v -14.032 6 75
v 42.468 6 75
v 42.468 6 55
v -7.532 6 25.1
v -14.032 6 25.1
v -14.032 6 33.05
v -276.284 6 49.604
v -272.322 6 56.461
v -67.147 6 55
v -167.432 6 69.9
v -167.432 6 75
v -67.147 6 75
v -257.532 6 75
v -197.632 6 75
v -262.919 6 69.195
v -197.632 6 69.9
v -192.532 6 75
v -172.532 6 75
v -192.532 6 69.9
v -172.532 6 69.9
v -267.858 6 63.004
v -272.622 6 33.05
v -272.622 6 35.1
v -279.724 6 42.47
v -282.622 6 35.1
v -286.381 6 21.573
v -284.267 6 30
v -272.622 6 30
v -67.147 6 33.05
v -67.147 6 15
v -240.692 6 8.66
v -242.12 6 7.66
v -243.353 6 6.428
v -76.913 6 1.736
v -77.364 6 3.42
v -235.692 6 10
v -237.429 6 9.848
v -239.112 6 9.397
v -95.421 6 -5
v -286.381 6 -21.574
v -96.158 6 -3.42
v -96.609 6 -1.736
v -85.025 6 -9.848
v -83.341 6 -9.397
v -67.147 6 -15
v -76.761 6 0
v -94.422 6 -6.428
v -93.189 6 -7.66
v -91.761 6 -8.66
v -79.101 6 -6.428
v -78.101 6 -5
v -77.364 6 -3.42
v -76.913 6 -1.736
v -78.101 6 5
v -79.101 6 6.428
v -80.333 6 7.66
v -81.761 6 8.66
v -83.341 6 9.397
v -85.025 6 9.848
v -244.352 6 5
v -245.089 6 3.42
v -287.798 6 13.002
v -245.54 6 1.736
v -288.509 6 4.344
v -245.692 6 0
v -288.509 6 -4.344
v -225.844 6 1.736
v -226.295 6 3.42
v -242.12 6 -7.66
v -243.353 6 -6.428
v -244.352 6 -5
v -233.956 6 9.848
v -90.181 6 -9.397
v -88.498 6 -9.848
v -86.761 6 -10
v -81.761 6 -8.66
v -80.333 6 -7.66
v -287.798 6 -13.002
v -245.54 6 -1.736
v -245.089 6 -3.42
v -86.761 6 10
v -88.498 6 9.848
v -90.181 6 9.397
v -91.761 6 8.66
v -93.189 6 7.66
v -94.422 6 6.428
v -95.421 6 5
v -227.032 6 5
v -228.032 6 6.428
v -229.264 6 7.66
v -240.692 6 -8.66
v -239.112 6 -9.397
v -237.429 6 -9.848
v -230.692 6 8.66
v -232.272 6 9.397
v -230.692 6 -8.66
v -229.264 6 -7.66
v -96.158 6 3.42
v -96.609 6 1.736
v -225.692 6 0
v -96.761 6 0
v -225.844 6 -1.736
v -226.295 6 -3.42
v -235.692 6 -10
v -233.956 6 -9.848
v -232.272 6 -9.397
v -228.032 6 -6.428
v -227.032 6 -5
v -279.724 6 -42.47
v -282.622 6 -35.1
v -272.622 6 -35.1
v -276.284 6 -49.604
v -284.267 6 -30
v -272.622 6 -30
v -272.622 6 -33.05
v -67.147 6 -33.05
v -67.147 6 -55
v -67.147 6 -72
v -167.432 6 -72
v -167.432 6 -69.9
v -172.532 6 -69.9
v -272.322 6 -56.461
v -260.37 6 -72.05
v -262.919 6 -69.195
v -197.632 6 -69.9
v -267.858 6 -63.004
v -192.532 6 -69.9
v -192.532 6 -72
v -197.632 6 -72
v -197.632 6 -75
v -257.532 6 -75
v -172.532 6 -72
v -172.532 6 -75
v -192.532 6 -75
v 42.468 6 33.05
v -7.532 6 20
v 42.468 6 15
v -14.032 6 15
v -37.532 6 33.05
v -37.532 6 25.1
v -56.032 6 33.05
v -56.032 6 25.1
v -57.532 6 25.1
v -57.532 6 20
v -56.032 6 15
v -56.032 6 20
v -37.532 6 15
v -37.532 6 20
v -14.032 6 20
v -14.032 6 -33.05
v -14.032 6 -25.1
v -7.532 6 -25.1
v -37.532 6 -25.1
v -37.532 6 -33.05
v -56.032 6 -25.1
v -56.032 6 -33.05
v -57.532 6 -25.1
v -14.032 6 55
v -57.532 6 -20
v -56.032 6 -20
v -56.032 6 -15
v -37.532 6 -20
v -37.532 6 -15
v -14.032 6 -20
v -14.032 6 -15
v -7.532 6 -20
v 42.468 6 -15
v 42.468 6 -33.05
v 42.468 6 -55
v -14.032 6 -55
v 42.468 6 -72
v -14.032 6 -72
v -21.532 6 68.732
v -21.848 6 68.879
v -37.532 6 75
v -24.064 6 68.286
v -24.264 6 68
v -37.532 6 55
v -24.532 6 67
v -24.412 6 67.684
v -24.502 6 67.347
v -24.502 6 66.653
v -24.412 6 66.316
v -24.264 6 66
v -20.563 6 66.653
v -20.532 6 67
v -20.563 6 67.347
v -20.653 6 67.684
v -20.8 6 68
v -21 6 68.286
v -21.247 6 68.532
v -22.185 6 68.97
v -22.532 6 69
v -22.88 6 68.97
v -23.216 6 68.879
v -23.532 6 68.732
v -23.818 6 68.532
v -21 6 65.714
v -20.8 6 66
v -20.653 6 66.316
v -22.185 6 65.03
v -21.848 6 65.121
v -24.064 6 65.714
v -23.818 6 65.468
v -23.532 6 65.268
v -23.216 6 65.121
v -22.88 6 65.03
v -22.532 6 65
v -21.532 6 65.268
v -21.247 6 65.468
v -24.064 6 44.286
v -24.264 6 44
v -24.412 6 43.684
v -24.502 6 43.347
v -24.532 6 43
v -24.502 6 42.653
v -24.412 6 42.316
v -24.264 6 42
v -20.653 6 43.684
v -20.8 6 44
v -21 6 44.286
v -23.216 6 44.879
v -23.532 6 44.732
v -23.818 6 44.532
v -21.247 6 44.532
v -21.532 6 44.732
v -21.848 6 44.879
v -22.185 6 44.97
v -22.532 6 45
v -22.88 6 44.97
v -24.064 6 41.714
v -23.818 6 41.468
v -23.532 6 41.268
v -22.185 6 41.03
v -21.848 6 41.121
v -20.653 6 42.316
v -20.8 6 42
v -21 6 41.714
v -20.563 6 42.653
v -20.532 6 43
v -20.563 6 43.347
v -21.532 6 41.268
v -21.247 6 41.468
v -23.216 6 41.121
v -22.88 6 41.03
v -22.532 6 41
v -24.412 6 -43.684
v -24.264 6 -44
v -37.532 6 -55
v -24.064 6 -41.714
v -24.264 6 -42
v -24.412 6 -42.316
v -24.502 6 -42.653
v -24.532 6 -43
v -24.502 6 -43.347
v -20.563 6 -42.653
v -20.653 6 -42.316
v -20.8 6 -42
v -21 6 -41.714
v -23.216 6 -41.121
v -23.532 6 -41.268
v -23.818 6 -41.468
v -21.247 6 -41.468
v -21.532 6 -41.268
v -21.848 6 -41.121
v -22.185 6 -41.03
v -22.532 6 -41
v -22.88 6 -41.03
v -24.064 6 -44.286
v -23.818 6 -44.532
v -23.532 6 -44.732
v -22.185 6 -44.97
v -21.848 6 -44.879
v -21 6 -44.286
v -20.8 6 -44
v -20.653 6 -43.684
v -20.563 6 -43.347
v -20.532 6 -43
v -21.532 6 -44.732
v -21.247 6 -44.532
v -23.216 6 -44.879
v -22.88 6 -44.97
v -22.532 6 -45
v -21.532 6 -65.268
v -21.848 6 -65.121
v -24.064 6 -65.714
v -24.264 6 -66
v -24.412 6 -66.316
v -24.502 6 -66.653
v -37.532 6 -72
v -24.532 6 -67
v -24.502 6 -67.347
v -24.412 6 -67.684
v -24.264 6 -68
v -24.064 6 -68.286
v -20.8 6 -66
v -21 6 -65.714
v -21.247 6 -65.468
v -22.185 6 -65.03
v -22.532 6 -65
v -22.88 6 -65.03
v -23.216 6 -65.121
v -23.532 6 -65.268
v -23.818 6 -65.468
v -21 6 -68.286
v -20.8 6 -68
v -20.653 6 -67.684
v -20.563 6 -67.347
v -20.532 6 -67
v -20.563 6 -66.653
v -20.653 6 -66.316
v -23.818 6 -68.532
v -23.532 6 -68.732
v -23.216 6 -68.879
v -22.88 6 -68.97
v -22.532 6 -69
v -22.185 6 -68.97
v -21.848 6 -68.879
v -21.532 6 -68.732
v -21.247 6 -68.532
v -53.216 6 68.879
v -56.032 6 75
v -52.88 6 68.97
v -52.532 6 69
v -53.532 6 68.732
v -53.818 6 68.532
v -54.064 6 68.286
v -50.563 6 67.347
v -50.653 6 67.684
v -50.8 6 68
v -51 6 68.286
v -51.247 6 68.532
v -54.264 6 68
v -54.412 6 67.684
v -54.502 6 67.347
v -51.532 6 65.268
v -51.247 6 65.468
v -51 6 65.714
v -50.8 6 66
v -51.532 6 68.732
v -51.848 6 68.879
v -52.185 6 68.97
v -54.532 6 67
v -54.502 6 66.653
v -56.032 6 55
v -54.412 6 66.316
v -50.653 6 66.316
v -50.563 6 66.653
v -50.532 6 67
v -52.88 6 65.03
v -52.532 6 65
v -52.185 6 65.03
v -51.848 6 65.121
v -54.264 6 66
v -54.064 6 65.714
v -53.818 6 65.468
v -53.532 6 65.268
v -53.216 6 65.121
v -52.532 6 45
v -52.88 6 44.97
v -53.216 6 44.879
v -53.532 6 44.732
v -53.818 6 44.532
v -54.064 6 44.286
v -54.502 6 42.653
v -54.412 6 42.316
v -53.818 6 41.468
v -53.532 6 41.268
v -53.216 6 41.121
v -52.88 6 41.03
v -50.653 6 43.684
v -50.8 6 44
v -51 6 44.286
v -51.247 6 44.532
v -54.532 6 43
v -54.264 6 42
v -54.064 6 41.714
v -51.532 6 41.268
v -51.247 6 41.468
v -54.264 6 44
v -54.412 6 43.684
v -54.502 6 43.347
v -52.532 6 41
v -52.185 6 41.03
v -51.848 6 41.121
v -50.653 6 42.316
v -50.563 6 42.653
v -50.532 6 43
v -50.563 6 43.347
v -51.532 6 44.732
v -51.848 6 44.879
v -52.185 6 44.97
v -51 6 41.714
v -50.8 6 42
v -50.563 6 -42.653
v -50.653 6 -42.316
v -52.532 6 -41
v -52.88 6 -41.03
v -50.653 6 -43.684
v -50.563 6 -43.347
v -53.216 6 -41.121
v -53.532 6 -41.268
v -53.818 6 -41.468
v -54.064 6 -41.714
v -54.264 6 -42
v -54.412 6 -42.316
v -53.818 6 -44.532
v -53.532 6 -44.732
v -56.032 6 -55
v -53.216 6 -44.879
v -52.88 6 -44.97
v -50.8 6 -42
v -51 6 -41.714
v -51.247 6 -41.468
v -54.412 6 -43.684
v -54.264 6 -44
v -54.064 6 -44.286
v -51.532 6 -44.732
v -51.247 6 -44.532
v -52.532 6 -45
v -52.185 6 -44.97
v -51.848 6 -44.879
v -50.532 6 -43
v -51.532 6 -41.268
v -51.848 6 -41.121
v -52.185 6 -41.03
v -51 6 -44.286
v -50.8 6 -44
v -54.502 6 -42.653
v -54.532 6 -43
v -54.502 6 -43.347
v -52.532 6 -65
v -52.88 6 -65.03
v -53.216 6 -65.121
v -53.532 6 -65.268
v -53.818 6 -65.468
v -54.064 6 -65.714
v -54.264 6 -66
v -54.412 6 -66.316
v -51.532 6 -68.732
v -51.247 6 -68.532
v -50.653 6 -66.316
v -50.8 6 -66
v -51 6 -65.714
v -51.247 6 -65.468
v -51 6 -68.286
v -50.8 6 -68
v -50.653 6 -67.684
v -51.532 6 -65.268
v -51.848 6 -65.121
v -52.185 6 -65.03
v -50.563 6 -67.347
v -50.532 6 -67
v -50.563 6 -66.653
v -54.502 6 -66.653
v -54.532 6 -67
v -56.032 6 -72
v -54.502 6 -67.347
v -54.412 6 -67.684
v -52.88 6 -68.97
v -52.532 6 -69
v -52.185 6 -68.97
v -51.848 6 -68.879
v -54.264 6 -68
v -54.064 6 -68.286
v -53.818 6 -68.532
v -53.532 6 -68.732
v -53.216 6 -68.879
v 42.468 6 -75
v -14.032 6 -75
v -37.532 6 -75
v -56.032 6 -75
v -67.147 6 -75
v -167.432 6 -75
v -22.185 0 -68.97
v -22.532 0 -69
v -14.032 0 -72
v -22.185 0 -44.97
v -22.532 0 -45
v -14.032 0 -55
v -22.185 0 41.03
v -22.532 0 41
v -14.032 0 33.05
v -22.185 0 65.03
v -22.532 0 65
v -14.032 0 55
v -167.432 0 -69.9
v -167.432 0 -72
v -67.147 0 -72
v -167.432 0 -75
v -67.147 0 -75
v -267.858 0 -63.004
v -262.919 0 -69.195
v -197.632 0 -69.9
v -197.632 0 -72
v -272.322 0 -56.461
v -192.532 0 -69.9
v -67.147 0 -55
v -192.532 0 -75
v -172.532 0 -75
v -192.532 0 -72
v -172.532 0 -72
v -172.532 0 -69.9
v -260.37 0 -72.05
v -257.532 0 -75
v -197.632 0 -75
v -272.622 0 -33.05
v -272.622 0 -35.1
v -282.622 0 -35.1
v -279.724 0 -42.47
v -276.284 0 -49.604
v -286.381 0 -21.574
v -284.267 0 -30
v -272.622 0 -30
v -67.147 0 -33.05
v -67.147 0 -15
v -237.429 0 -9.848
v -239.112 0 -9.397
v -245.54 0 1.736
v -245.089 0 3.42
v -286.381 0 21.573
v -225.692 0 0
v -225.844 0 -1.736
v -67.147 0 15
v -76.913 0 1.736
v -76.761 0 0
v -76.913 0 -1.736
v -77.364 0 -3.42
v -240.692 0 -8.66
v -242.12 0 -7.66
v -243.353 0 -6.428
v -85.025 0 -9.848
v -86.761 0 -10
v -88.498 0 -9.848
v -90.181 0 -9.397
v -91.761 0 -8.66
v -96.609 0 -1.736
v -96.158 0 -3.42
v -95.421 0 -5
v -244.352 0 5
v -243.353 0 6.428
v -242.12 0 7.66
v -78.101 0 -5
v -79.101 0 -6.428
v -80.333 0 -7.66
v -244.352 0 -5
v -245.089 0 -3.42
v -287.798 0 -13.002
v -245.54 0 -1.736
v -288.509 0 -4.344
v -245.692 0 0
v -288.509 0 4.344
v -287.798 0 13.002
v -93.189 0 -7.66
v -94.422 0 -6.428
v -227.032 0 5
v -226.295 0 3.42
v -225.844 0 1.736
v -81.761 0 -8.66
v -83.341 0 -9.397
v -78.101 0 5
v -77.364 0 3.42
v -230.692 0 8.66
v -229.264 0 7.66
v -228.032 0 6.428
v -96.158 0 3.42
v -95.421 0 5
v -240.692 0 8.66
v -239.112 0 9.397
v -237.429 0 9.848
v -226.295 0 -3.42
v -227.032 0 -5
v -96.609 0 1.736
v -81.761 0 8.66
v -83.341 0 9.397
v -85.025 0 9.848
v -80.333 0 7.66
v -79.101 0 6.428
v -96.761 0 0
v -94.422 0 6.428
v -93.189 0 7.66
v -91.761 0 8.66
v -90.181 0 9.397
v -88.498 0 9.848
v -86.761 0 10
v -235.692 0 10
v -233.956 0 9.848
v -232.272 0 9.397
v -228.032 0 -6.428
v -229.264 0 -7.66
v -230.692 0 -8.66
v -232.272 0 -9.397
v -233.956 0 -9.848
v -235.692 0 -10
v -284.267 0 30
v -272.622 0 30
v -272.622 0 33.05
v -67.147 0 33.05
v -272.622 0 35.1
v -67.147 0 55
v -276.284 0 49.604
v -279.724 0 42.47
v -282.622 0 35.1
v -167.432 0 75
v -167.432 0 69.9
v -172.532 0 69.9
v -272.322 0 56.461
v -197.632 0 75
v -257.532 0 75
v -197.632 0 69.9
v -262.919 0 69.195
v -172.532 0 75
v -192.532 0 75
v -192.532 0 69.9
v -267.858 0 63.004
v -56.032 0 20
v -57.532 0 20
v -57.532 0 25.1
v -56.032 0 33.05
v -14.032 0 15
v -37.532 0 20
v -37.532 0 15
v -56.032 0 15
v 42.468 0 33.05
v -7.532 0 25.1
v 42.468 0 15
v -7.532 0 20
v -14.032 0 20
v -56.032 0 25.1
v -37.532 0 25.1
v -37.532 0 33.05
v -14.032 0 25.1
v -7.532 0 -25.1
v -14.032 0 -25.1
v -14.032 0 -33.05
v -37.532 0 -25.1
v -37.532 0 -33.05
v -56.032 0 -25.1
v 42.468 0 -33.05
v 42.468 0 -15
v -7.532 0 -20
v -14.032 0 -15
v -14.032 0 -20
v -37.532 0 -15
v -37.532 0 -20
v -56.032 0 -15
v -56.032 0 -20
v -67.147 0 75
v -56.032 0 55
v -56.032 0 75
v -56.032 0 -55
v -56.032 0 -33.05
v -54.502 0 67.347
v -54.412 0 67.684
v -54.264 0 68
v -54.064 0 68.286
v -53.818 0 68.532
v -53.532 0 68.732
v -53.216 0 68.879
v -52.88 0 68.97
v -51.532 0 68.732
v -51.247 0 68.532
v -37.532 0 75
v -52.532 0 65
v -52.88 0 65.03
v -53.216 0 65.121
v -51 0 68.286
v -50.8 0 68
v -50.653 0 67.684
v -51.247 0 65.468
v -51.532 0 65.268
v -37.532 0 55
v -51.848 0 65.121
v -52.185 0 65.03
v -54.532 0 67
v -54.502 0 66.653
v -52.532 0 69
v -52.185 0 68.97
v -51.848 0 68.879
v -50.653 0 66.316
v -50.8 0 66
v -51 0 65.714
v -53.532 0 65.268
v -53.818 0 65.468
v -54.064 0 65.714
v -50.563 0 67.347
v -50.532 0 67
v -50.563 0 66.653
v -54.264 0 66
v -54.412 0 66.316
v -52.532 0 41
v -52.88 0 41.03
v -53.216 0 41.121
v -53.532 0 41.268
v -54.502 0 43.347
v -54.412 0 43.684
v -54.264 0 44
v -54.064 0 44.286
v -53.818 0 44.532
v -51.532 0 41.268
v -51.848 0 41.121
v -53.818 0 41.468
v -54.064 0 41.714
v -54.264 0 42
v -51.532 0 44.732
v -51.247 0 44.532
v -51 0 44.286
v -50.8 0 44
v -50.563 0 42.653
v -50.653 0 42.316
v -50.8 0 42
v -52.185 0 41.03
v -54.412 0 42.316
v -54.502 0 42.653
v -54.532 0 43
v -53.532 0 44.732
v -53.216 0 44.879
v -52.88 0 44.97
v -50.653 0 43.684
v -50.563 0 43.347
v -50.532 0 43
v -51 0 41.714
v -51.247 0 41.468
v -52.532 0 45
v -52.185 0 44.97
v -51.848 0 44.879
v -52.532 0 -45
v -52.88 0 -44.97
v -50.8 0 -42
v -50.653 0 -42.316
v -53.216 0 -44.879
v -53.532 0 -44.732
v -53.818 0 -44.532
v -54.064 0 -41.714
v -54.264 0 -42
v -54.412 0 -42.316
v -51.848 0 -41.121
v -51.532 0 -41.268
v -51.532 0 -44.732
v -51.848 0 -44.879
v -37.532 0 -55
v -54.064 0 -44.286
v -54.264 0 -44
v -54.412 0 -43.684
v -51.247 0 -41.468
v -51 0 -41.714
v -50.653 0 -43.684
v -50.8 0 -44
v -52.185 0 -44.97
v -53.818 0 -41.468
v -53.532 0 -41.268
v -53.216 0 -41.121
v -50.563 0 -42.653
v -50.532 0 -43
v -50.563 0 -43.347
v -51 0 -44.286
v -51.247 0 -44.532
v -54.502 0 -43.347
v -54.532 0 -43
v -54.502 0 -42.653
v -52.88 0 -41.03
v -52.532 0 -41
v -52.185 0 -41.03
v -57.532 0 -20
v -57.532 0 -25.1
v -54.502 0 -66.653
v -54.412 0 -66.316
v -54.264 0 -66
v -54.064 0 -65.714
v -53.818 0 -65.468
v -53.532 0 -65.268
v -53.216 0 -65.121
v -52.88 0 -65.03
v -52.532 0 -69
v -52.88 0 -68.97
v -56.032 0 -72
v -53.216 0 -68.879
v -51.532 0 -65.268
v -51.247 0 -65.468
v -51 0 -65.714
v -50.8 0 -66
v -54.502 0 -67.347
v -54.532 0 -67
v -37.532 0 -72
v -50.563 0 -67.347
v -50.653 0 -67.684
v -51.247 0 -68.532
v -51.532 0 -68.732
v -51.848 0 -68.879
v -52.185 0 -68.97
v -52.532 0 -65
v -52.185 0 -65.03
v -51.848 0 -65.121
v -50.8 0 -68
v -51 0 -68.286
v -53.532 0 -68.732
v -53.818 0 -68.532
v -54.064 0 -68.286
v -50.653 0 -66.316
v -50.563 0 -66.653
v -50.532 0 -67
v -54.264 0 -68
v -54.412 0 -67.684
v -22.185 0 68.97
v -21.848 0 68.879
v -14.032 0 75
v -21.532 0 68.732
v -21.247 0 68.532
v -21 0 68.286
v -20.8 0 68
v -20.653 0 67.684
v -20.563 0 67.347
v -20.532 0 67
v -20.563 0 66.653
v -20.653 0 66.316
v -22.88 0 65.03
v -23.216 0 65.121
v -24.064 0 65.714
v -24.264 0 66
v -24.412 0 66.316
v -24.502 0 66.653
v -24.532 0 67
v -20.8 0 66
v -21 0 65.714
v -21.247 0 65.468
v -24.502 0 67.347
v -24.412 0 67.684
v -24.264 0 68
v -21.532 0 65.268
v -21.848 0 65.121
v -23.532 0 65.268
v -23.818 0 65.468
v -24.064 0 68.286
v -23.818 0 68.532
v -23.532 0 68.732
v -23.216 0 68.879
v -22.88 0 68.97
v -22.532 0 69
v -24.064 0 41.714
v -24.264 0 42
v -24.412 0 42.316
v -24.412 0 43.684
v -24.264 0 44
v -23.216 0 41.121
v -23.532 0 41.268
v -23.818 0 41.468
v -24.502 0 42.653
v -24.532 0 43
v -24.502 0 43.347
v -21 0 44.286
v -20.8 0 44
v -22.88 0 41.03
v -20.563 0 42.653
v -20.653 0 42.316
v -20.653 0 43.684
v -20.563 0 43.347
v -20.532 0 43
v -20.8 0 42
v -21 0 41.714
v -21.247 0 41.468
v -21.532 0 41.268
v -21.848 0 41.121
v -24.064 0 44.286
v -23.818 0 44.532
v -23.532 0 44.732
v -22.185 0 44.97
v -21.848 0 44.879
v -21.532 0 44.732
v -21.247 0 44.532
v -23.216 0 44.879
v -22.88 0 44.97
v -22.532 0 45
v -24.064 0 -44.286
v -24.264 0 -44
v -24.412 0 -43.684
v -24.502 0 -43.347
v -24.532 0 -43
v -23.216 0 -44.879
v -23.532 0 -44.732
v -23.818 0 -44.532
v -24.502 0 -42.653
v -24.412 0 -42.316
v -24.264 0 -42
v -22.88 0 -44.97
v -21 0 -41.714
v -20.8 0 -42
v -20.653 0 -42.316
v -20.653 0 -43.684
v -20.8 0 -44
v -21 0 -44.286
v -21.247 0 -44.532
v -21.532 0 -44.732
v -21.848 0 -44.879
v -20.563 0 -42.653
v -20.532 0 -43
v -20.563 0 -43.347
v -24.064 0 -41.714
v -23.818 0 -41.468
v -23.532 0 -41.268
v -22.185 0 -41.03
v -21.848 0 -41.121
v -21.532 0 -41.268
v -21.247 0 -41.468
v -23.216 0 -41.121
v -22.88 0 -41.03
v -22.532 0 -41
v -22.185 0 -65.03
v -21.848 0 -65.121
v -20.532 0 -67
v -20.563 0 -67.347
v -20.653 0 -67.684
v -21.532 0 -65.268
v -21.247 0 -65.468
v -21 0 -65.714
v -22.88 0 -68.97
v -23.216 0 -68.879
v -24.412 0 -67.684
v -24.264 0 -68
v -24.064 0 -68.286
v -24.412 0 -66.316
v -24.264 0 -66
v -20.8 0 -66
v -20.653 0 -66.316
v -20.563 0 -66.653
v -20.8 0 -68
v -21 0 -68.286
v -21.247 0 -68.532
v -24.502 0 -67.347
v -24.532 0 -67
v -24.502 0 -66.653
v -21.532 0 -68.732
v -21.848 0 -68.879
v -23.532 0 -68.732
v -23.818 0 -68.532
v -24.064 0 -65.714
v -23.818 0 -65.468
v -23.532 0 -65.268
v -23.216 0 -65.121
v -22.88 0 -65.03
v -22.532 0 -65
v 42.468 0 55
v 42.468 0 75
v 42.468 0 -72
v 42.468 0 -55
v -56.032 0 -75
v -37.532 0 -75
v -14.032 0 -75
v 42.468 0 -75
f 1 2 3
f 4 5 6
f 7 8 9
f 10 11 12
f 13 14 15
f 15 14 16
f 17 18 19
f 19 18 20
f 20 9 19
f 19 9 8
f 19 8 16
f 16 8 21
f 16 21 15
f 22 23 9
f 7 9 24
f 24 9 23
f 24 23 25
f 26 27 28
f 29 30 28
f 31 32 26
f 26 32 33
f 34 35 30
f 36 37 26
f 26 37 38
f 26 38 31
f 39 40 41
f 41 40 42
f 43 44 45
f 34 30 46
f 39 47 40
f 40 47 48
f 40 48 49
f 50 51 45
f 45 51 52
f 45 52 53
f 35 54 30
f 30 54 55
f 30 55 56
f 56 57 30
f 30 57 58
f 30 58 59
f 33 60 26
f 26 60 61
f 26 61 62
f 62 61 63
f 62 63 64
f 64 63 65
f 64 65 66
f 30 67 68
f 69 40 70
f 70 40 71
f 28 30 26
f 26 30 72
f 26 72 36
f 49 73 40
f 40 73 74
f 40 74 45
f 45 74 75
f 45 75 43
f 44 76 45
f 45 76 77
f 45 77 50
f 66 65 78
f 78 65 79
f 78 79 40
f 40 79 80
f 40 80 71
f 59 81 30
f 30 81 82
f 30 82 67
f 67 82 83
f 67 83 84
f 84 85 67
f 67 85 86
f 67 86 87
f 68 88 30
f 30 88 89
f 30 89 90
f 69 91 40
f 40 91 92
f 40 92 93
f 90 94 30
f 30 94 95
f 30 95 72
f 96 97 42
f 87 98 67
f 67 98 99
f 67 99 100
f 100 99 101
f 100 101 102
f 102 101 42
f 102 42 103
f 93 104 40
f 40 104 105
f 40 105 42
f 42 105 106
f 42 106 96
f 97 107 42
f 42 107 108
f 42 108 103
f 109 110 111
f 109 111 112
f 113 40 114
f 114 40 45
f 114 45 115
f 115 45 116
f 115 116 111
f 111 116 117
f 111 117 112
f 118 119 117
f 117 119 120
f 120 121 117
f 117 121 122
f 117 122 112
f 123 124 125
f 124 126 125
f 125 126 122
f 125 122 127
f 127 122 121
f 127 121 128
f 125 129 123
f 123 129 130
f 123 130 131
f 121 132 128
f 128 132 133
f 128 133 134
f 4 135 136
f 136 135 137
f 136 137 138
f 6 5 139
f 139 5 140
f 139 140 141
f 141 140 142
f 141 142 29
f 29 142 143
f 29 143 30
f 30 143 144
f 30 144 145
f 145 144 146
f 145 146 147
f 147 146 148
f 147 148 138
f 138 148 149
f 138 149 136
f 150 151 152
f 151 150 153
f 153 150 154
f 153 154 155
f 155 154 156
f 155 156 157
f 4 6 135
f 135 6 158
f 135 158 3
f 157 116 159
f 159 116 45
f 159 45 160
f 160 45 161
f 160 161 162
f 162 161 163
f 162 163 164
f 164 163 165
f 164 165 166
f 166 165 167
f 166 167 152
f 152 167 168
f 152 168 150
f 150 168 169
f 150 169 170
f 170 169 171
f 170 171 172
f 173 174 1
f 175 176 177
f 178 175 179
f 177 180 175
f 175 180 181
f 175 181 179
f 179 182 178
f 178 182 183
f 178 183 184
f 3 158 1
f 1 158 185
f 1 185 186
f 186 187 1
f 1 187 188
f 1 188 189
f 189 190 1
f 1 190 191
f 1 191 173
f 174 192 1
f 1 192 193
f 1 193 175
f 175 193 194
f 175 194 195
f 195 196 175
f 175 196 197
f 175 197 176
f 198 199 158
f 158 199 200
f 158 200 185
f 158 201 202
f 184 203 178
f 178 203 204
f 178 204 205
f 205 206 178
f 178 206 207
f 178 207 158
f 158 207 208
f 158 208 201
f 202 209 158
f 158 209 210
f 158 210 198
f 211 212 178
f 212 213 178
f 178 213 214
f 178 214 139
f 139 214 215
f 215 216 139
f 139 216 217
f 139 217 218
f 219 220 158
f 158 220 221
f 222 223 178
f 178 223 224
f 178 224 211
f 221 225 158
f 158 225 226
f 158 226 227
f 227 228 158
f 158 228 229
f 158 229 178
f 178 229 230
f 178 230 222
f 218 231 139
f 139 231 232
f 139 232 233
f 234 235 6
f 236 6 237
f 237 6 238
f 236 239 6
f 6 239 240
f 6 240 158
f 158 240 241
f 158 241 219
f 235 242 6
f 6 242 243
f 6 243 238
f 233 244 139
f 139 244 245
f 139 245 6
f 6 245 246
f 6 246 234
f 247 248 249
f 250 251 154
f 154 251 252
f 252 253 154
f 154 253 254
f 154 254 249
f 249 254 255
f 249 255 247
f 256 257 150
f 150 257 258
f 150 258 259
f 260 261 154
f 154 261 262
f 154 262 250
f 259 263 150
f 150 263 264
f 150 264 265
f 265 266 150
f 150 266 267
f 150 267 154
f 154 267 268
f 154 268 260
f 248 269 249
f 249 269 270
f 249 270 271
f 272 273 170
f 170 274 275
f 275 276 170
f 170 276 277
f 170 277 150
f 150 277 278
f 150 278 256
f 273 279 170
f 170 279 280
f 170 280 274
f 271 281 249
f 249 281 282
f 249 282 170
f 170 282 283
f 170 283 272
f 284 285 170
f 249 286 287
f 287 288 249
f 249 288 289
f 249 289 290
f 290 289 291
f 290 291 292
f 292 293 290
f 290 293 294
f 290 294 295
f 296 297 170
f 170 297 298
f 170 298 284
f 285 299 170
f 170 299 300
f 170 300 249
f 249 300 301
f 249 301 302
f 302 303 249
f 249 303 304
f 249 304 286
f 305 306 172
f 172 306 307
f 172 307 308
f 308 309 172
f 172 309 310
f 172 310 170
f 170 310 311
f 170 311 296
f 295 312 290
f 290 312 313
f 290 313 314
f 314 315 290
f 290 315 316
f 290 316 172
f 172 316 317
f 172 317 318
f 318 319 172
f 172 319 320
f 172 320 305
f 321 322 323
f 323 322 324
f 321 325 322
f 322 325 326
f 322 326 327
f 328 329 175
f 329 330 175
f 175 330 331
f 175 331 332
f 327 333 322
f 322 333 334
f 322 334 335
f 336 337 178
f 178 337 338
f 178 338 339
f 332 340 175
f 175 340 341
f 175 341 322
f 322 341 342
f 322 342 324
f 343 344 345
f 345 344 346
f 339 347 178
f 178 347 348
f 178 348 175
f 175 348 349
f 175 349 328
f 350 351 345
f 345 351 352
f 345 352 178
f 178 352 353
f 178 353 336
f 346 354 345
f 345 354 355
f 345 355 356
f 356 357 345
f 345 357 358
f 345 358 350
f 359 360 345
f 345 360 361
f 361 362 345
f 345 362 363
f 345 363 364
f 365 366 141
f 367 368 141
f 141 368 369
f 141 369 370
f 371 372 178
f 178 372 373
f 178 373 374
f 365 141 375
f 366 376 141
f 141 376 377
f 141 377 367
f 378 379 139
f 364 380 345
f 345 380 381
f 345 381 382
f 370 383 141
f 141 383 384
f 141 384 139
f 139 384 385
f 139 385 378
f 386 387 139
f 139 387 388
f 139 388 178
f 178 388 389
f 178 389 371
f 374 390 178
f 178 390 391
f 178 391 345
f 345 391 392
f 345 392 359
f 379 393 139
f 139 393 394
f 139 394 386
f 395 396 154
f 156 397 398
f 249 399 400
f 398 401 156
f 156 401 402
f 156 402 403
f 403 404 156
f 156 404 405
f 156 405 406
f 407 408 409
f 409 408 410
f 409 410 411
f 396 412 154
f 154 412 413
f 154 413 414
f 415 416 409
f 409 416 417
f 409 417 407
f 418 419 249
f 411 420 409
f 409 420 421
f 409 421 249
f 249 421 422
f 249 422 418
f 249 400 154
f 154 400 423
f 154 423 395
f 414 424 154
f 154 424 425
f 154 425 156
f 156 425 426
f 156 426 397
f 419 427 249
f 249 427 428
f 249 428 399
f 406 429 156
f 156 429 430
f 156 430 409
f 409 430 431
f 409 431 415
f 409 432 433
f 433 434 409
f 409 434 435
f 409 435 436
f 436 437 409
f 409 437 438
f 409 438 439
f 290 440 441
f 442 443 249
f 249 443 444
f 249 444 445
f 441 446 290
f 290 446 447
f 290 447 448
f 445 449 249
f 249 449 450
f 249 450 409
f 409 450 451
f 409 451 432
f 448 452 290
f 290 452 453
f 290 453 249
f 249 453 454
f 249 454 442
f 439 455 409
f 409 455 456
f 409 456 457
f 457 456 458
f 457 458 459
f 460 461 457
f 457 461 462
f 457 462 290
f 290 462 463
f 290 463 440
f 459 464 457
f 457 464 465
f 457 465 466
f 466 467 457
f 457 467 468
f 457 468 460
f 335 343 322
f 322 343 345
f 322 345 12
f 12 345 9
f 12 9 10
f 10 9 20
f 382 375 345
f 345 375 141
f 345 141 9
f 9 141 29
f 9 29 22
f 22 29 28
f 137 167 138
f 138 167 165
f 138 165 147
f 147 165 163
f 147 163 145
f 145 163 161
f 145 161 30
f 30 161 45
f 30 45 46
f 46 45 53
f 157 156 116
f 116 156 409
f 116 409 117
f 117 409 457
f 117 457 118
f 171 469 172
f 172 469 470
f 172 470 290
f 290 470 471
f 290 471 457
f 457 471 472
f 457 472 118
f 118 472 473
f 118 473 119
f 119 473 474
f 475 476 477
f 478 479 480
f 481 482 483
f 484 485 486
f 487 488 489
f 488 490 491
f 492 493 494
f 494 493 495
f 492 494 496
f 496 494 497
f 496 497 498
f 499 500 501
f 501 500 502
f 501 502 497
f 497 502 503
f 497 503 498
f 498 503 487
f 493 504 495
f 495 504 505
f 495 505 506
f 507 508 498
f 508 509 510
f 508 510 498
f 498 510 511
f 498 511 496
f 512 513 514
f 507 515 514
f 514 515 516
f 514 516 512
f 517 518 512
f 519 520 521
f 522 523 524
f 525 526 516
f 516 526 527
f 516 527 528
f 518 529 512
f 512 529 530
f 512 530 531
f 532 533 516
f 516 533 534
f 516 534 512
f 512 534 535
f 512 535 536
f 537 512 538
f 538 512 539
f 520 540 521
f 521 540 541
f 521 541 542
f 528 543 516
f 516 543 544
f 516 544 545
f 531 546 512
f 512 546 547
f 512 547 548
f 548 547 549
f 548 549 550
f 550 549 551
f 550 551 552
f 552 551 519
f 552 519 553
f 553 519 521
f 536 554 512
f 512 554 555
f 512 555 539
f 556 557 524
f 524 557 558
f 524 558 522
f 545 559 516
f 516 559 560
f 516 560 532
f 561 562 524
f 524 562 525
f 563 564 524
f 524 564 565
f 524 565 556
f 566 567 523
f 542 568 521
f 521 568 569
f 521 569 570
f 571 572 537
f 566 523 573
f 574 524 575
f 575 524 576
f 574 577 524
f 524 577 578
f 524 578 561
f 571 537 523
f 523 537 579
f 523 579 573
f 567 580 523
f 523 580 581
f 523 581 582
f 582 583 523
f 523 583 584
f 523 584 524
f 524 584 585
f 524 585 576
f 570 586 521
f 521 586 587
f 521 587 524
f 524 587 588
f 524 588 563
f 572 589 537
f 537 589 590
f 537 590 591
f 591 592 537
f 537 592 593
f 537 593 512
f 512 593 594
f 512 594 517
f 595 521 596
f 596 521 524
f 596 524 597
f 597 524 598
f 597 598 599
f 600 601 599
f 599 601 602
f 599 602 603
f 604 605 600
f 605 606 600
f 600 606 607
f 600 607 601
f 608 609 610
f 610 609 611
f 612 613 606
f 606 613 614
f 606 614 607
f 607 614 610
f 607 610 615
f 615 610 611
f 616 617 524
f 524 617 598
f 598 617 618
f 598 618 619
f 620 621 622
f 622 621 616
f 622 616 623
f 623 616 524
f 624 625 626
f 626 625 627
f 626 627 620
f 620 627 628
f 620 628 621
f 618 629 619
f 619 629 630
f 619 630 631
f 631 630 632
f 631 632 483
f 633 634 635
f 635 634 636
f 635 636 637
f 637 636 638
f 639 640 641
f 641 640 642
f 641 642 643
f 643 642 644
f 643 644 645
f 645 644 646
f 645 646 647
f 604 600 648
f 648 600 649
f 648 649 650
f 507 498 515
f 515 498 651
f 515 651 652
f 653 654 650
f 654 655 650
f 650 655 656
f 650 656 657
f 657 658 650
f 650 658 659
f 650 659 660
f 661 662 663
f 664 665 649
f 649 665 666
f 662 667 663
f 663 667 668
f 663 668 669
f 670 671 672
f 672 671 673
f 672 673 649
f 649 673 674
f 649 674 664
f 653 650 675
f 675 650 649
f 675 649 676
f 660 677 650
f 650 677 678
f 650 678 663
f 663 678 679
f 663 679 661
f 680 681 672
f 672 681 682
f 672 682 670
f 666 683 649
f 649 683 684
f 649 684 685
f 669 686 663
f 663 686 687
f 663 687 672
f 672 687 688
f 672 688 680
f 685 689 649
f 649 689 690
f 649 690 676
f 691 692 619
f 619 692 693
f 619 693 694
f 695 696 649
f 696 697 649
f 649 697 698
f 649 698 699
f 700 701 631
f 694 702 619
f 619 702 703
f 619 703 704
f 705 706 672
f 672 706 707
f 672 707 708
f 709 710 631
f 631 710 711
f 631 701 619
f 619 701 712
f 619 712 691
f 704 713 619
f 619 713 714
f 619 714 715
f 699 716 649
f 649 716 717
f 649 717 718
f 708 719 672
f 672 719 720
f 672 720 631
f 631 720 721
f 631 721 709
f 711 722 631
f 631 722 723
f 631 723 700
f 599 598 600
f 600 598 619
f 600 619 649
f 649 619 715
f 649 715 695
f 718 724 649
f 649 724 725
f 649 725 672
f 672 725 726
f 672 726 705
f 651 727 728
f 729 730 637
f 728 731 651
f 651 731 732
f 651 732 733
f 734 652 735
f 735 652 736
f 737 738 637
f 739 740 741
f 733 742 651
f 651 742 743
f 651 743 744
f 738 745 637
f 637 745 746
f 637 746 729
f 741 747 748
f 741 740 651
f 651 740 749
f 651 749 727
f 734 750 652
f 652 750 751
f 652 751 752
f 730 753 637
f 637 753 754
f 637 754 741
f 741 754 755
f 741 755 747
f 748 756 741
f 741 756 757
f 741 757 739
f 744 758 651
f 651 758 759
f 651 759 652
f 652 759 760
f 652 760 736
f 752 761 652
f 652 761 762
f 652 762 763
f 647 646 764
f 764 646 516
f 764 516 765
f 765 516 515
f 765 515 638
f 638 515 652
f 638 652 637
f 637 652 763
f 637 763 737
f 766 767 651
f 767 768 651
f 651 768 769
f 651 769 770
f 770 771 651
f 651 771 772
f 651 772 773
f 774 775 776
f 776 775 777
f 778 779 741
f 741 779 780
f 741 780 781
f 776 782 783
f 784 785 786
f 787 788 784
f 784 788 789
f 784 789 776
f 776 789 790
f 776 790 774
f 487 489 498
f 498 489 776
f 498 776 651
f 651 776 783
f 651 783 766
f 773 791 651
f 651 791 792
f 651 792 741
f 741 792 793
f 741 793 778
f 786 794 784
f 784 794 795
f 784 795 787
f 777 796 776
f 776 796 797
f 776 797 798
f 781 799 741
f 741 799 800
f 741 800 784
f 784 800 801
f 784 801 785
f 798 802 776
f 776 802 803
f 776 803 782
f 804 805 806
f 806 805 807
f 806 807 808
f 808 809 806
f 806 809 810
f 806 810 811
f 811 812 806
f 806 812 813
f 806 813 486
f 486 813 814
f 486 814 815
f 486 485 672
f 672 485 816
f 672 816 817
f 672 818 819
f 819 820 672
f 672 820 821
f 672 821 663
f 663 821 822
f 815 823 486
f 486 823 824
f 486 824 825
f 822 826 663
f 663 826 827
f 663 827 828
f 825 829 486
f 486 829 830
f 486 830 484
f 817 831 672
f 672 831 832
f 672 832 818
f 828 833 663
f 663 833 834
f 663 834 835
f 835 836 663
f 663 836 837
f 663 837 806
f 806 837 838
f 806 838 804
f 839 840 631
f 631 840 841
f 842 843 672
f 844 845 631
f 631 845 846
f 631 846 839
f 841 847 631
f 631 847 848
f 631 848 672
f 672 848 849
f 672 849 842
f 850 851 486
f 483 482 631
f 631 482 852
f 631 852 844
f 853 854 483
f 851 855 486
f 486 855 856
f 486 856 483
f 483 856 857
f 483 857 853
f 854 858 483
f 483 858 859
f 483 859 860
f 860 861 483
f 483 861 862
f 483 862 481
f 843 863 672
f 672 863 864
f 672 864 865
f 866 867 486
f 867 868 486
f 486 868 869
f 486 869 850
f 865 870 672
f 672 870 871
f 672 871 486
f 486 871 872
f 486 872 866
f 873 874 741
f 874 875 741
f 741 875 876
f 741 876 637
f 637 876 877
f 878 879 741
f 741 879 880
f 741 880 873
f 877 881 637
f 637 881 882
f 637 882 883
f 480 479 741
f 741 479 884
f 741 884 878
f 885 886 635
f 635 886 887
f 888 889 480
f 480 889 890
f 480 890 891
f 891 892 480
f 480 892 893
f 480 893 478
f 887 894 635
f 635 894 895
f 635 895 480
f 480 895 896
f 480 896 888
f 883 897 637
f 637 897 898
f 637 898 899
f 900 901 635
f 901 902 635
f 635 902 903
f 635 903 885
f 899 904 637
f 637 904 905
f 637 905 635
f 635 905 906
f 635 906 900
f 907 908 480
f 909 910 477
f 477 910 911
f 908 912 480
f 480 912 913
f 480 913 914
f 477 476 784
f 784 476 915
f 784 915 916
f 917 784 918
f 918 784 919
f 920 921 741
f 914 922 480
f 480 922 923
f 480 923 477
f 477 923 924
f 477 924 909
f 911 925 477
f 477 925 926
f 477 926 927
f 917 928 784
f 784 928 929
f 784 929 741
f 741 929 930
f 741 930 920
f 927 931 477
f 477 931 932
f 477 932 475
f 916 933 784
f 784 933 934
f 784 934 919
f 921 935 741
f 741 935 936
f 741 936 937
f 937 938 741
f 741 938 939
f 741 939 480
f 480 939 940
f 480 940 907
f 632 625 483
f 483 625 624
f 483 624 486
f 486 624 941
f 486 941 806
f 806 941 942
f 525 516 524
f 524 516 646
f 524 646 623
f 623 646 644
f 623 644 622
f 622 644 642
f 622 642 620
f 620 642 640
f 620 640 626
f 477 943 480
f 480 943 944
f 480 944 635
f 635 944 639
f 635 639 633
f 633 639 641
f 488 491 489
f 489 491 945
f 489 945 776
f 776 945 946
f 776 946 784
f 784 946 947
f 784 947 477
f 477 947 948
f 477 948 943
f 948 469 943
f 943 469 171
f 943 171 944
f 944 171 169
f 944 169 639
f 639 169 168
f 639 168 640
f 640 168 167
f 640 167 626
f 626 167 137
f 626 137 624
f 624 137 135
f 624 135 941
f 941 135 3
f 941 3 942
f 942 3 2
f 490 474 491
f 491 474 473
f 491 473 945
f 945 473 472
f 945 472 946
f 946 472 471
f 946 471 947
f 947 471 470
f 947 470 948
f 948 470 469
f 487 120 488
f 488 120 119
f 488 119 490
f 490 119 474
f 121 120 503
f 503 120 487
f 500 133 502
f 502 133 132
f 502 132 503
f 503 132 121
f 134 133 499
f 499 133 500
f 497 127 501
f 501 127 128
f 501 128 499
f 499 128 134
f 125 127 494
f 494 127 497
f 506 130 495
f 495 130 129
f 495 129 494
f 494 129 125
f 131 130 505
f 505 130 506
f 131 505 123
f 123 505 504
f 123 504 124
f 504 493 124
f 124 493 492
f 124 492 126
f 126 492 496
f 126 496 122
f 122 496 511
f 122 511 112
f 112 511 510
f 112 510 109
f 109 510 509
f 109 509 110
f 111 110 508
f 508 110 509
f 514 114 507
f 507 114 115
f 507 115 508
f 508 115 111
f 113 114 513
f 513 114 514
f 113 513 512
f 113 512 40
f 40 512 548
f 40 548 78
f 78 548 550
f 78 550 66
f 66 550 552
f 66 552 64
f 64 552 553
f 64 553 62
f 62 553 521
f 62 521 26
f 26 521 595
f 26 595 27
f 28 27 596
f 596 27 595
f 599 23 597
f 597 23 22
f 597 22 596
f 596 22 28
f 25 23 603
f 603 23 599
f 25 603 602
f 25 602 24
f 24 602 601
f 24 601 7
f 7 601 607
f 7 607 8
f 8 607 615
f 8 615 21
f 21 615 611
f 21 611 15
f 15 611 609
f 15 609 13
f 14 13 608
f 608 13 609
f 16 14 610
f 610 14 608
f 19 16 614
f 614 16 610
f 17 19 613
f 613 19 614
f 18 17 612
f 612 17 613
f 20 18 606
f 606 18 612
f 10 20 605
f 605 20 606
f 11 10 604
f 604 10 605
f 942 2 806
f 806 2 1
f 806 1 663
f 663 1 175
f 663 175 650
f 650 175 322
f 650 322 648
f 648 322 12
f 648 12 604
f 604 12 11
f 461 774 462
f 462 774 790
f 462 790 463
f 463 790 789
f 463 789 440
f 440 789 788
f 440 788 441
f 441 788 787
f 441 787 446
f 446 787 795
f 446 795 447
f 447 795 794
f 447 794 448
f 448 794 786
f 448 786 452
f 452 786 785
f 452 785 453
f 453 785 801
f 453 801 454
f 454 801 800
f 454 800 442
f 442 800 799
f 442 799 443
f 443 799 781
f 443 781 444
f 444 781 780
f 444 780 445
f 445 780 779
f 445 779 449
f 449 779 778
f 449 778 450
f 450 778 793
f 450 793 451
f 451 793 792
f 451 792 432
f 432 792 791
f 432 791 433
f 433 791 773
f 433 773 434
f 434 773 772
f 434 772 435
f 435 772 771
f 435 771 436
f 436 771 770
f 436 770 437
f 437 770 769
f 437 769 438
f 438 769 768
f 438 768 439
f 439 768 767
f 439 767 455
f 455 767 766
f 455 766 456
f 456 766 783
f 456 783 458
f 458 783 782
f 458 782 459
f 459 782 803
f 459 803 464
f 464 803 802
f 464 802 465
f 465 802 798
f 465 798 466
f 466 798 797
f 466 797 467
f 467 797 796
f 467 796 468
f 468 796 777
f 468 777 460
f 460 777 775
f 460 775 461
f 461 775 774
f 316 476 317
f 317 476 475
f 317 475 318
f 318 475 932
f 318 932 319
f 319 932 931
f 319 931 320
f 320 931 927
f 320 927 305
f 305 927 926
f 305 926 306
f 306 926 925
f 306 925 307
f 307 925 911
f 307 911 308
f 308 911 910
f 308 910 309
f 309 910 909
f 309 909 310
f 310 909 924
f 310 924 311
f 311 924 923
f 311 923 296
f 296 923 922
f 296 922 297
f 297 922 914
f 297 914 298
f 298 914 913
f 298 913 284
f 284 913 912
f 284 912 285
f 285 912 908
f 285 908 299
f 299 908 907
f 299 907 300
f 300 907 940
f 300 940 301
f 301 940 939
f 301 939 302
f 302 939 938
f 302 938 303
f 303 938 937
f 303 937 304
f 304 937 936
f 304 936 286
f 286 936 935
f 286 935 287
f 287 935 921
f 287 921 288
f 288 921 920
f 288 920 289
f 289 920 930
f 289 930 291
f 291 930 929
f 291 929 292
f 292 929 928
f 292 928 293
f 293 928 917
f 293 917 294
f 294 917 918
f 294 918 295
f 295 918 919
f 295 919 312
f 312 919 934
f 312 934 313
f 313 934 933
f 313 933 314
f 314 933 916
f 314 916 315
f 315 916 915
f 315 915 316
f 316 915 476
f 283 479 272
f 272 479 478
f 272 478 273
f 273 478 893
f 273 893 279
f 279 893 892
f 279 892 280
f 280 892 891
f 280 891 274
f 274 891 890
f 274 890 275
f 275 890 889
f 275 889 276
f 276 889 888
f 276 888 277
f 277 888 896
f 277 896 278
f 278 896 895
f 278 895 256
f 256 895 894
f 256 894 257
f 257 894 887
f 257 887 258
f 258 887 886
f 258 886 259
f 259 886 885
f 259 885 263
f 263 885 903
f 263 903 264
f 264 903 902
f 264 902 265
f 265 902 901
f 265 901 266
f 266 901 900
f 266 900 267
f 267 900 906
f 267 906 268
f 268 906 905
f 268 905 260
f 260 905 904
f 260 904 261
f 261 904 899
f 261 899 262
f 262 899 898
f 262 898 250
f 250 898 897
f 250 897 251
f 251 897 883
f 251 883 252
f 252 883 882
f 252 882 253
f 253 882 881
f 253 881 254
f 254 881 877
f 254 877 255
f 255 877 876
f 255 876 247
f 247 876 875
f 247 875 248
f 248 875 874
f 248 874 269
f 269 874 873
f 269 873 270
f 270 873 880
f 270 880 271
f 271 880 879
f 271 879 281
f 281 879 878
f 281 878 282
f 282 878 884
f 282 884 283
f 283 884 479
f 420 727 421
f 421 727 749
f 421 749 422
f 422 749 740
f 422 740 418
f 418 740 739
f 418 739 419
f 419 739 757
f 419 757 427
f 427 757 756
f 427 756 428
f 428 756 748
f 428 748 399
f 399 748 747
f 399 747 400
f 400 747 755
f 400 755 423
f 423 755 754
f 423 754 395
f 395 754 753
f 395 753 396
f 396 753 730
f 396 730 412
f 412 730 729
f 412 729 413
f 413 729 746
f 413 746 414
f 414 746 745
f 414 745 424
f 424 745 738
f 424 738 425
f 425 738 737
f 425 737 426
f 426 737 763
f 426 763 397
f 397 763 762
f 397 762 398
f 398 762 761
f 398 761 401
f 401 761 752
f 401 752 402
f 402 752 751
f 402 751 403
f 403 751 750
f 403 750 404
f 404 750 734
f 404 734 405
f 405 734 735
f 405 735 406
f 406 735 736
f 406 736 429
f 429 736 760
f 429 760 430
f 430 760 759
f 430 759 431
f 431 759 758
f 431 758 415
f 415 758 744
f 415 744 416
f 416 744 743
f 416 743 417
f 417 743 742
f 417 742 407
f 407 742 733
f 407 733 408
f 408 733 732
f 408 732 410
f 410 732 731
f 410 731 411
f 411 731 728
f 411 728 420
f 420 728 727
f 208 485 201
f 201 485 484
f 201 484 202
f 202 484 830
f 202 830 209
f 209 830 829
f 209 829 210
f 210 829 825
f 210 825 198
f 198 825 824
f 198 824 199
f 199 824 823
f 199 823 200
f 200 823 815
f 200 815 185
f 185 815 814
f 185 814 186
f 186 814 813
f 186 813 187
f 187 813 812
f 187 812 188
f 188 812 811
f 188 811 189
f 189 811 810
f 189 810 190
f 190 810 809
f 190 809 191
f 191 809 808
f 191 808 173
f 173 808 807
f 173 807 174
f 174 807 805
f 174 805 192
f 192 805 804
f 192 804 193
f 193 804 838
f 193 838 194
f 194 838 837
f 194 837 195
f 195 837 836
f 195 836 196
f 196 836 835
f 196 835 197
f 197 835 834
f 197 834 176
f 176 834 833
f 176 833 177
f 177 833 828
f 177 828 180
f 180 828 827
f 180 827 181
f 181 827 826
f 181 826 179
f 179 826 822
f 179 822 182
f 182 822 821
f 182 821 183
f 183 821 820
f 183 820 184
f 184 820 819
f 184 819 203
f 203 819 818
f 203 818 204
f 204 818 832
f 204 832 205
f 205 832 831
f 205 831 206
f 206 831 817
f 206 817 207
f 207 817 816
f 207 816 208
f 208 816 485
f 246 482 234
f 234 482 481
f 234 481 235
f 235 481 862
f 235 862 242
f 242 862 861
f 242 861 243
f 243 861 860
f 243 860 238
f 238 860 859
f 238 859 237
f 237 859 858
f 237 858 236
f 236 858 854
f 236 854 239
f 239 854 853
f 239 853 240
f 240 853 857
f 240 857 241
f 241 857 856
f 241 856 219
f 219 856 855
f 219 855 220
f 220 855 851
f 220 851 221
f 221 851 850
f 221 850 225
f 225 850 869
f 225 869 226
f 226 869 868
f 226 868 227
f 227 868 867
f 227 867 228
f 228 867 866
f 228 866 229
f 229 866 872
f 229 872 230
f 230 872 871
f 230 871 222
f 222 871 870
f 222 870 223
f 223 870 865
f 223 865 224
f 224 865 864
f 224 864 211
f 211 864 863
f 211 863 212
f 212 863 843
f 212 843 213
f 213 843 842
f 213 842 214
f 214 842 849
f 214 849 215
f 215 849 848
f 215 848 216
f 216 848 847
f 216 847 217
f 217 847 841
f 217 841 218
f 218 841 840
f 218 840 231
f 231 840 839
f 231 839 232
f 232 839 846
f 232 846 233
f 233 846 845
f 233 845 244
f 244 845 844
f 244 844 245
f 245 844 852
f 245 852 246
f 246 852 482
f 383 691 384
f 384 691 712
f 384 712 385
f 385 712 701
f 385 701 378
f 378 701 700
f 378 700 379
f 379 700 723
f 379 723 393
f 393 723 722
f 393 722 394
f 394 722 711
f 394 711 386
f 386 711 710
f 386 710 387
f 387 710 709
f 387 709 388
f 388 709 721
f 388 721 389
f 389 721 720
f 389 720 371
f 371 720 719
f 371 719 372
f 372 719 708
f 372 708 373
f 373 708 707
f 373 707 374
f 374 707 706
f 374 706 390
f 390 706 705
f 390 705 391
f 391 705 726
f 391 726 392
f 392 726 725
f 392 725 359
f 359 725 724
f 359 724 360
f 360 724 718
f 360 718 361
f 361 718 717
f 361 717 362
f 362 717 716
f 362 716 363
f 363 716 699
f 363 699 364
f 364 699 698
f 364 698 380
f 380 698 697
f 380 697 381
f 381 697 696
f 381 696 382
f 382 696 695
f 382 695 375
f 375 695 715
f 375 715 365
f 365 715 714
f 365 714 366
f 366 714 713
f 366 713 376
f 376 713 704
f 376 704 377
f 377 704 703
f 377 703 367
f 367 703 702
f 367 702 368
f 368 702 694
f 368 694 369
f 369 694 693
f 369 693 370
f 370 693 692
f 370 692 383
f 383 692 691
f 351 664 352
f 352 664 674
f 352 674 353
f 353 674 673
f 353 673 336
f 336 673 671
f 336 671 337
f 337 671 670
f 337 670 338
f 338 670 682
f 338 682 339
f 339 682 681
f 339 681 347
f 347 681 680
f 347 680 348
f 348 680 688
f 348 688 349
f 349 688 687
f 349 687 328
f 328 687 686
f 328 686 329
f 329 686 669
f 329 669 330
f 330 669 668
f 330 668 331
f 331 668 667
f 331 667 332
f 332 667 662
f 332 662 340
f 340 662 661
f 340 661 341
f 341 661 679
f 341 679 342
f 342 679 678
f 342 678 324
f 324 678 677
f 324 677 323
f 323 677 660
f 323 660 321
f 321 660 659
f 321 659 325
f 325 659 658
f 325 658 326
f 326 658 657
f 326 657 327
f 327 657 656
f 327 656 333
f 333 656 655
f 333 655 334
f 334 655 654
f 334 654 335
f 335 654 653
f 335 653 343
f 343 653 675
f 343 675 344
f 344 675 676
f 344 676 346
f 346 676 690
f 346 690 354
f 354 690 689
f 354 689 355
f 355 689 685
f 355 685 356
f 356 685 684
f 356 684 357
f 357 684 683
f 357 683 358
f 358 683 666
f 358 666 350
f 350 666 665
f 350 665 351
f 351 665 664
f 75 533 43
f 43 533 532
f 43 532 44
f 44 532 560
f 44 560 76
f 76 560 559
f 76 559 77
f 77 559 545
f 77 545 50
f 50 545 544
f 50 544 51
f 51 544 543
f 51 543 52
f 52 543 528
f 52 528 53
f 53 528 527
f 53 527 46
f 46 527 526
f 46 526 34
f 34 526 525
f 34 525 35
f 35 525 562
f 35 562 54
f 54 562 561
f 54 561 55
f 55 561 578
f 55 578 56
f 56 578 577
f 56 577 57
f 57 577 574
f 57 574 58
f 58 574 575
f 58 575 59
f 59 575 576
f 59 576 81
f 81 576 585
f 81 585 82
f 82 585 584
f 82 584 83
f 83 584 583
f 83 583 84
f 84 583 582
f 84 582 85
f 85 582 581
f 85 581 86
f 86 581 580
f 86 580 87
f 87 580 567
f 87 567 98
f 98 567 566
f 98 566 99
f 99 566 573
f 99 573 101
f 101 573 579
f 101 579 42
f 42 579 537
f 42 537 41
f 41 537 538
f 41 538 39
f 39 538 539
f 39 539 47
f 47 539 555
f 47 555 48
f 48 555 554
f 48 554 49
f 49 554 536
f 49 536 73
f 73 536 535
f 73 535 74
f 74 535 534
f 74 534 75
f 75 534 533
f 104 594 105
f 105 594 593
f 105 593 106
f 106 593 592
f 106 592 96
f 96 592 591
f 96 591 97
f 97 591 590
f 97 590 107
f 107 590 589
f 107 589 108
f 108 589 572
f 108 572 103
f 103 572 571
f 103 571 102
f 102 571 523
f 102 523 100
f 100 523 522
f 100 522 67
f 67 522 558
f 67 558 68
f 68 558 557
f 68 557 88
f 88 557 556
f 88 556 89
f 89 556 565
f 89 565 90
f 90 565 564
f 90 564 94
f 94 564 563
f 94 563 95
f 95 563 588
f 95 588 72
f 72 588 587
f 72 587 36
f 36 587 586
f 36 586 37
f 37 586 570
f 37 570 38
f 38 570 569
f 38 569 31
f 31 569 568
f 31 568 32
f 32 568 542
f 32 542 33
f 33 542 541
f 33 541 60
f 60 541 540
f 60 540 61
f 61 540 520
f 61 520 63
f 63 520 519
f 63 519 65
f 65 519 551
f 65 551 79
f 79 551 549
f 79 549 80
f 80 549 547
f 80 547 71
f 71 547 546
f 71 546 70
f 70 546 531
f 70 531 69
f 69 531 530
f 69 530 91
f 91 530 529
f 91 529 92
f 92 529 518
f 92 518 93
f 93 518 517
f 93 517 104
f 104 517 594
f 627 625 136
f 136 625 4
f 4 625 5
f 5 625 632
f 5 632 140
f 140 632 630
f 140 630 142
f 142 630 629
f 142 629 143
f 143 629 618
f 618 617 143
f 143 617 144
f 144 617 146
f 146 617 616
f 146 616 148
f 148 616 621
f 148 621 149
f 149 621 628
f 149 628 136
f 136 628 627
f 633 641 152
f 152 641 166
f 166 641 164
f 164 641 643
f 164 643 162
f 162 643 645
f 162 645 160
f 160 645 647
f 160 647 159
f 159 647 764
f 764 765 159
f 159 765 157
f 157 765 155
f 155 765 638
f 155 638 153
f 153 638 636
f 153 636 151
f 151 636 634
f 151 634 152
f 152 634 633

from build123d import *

# Parameters (mm, degrees)
SKETCH1_R           = 2
SKETCH1_R_2         = 10
BOSS_EXTRUDE1_DEPTH = 6
SKETCH2_W           = 50
SKETCH2_H           = 5.1
CUT_EXTRUDE1_DEPTH  = 299.24484337


with BuildPart() as part:
    # Sketch1 → Boss-Extrude1 (new body)
    with BuildSketch(Plane(origin=(0, 0, 0), x_dir=(1, 0, 0), z_dir=(0, 1, 0))):
        with BuildLine():
            Line((42.467703605, -75), (-167.432296395, -75))
            Line((-167.432296395, -75), (-167.432296395, -69.9))
            Line((-167.432296395, -69.9), (-172.532296395, -69.9))
            Line((-172.532296395, -69.9), (-172.532296395, -75))
            Line((-172.532296395, -75), (-192.532296395, -75))
            Line((-192.532296395, -75), (-192.532296395, -69.9))
            Line((-192.532296395, -69.9), (-197.632296395, -69.9))
            Line((-197.632296395, -69.9), (-197.632296395, -75))
            Line((-197.632296395, -75), (-257.532296395, -75))
            ThreePointArc((-257.532296395, -75), (-272.321614297, -56.461299938), (-282.622205976, -35.1))
            Line((-282.622205976, -35.1), (-272.622205976, -35.1))
            Line((-272.622205976, -35.1), (-272.622205976, -30))
            Line((-272.622205976, -30), (-284.267246142, -30))
            ThreePointArc((-284.267246142, -30), (-288.598313573, 0), (-284.267246142, 30))
            Line((-284.267246142, 30), (-272.622205976, 30))
            Line((-272.622205976, 30), (-272.622205976, 35.1))
            Line((-272.622205976, 35.1), (-282.622205976, 35.1))
            ThreePointArc((-282.622205976, 35.1), (-272.321614297, 56.461299938), (-257.532296395, 75))
            Line((-257.532296395, 75), (-197.632296395, 75))
            Line((-197.632296395, 75), (-197.632296395, 69.9))
            Line((-197.632296395, 69.9), (-192.532296395, 69.9))
            Line((-192.532296395, 69.9), (-192.532296395, 75))
            Line((-192.532296395, 75), (-172.532296395, 75))
            Line((-172.532296395, 75), (-172.532296395, 69.9))
            Line((-172.532296395, 69.9), (-167.432296395, 69.9))
            Line((-167.432296395, 69.9), (-167.432296395, 75))
            Line((-167.432296395, 75), (42.467703605, 75))
            Line((42.467703605, 75), (42.467703605, -75))
        make_face()
        with Locations(Location((-52.532296395, 67, 0), (0, 0, 270))):
            Circle(SKETCH1_R, mode=Mode.SUBTRACT)
        with Locations(Location((-22.532296395, 67, 0), (0, 0, 270))):
            Circle(SKETCH1_R, mode=Mode.SUBTRACT)
        with Locations(Location((-22.532296395, 43, 0), (0, 0, 270))):
            Circle(SKETCH1_R, mode=Mode.SUBTRACT)
        with Locations(Location((-52.532296395, 43, 0), (0, 0, 270))):
            Circle(SKETCH1_R, mode=Mode.SUBTRACT)
        with Locations(Location((-22.532296395, -67, 0), (0, 0, 90))):
            Circle(SKETCH1_R, mode=Mode.SUBTRACT)
        with Locations(Location((-22.532296395, -43, 0), (0, 0, 90))):
            Circle(SKETCH1_R, mode=Mode.SUBTRACT)
        with Locations(Location((-52.532296395, -43, 0), (0, 0, 90))):
            Circle(SKETCH1_R, mode=Mode.SUBTRACT)
        with Locations(Location((-52.532296395, -67, 0), (0, 0, 90))):
            Circle(SKETCH1_R, mode=Mode.SUBTRACT)
        with Locations(Location((-86.761151279, 0, 0), (0, 0, 270))):
            Circle(SKETCH1_R_2, mode=Mode.SUBTRACT)
        with Locations(Location((-235.692156702, 0, 0), (0, 0, 270))):
            Circle(SKETCH1_R_2, mode=Mode.SUBTRACT)
    extrude(amount=BOSS_EXTRUDE1_DEPTH)

    # Sketch2 → Cut-Extrude1 (cut, through all)
    with BuildSketch(Plane(origin=(0, 6, 0), x_dir=(1, 0, 0), z_dir=(0, 1, 0))):
        with Locations((-32.532296395, 22.55)):
            Rectangle(SKETCH2_W, SKETCH2_H)
        with Locations((-32.532296395, -22.55)):
            Rectangle(SKETCH2_W, SKETCH2_H)
    extrude(amount=-CUT_EXTRUDE1_DEPTH, mode=Mode.SUBTRACT)


solid = part.part
